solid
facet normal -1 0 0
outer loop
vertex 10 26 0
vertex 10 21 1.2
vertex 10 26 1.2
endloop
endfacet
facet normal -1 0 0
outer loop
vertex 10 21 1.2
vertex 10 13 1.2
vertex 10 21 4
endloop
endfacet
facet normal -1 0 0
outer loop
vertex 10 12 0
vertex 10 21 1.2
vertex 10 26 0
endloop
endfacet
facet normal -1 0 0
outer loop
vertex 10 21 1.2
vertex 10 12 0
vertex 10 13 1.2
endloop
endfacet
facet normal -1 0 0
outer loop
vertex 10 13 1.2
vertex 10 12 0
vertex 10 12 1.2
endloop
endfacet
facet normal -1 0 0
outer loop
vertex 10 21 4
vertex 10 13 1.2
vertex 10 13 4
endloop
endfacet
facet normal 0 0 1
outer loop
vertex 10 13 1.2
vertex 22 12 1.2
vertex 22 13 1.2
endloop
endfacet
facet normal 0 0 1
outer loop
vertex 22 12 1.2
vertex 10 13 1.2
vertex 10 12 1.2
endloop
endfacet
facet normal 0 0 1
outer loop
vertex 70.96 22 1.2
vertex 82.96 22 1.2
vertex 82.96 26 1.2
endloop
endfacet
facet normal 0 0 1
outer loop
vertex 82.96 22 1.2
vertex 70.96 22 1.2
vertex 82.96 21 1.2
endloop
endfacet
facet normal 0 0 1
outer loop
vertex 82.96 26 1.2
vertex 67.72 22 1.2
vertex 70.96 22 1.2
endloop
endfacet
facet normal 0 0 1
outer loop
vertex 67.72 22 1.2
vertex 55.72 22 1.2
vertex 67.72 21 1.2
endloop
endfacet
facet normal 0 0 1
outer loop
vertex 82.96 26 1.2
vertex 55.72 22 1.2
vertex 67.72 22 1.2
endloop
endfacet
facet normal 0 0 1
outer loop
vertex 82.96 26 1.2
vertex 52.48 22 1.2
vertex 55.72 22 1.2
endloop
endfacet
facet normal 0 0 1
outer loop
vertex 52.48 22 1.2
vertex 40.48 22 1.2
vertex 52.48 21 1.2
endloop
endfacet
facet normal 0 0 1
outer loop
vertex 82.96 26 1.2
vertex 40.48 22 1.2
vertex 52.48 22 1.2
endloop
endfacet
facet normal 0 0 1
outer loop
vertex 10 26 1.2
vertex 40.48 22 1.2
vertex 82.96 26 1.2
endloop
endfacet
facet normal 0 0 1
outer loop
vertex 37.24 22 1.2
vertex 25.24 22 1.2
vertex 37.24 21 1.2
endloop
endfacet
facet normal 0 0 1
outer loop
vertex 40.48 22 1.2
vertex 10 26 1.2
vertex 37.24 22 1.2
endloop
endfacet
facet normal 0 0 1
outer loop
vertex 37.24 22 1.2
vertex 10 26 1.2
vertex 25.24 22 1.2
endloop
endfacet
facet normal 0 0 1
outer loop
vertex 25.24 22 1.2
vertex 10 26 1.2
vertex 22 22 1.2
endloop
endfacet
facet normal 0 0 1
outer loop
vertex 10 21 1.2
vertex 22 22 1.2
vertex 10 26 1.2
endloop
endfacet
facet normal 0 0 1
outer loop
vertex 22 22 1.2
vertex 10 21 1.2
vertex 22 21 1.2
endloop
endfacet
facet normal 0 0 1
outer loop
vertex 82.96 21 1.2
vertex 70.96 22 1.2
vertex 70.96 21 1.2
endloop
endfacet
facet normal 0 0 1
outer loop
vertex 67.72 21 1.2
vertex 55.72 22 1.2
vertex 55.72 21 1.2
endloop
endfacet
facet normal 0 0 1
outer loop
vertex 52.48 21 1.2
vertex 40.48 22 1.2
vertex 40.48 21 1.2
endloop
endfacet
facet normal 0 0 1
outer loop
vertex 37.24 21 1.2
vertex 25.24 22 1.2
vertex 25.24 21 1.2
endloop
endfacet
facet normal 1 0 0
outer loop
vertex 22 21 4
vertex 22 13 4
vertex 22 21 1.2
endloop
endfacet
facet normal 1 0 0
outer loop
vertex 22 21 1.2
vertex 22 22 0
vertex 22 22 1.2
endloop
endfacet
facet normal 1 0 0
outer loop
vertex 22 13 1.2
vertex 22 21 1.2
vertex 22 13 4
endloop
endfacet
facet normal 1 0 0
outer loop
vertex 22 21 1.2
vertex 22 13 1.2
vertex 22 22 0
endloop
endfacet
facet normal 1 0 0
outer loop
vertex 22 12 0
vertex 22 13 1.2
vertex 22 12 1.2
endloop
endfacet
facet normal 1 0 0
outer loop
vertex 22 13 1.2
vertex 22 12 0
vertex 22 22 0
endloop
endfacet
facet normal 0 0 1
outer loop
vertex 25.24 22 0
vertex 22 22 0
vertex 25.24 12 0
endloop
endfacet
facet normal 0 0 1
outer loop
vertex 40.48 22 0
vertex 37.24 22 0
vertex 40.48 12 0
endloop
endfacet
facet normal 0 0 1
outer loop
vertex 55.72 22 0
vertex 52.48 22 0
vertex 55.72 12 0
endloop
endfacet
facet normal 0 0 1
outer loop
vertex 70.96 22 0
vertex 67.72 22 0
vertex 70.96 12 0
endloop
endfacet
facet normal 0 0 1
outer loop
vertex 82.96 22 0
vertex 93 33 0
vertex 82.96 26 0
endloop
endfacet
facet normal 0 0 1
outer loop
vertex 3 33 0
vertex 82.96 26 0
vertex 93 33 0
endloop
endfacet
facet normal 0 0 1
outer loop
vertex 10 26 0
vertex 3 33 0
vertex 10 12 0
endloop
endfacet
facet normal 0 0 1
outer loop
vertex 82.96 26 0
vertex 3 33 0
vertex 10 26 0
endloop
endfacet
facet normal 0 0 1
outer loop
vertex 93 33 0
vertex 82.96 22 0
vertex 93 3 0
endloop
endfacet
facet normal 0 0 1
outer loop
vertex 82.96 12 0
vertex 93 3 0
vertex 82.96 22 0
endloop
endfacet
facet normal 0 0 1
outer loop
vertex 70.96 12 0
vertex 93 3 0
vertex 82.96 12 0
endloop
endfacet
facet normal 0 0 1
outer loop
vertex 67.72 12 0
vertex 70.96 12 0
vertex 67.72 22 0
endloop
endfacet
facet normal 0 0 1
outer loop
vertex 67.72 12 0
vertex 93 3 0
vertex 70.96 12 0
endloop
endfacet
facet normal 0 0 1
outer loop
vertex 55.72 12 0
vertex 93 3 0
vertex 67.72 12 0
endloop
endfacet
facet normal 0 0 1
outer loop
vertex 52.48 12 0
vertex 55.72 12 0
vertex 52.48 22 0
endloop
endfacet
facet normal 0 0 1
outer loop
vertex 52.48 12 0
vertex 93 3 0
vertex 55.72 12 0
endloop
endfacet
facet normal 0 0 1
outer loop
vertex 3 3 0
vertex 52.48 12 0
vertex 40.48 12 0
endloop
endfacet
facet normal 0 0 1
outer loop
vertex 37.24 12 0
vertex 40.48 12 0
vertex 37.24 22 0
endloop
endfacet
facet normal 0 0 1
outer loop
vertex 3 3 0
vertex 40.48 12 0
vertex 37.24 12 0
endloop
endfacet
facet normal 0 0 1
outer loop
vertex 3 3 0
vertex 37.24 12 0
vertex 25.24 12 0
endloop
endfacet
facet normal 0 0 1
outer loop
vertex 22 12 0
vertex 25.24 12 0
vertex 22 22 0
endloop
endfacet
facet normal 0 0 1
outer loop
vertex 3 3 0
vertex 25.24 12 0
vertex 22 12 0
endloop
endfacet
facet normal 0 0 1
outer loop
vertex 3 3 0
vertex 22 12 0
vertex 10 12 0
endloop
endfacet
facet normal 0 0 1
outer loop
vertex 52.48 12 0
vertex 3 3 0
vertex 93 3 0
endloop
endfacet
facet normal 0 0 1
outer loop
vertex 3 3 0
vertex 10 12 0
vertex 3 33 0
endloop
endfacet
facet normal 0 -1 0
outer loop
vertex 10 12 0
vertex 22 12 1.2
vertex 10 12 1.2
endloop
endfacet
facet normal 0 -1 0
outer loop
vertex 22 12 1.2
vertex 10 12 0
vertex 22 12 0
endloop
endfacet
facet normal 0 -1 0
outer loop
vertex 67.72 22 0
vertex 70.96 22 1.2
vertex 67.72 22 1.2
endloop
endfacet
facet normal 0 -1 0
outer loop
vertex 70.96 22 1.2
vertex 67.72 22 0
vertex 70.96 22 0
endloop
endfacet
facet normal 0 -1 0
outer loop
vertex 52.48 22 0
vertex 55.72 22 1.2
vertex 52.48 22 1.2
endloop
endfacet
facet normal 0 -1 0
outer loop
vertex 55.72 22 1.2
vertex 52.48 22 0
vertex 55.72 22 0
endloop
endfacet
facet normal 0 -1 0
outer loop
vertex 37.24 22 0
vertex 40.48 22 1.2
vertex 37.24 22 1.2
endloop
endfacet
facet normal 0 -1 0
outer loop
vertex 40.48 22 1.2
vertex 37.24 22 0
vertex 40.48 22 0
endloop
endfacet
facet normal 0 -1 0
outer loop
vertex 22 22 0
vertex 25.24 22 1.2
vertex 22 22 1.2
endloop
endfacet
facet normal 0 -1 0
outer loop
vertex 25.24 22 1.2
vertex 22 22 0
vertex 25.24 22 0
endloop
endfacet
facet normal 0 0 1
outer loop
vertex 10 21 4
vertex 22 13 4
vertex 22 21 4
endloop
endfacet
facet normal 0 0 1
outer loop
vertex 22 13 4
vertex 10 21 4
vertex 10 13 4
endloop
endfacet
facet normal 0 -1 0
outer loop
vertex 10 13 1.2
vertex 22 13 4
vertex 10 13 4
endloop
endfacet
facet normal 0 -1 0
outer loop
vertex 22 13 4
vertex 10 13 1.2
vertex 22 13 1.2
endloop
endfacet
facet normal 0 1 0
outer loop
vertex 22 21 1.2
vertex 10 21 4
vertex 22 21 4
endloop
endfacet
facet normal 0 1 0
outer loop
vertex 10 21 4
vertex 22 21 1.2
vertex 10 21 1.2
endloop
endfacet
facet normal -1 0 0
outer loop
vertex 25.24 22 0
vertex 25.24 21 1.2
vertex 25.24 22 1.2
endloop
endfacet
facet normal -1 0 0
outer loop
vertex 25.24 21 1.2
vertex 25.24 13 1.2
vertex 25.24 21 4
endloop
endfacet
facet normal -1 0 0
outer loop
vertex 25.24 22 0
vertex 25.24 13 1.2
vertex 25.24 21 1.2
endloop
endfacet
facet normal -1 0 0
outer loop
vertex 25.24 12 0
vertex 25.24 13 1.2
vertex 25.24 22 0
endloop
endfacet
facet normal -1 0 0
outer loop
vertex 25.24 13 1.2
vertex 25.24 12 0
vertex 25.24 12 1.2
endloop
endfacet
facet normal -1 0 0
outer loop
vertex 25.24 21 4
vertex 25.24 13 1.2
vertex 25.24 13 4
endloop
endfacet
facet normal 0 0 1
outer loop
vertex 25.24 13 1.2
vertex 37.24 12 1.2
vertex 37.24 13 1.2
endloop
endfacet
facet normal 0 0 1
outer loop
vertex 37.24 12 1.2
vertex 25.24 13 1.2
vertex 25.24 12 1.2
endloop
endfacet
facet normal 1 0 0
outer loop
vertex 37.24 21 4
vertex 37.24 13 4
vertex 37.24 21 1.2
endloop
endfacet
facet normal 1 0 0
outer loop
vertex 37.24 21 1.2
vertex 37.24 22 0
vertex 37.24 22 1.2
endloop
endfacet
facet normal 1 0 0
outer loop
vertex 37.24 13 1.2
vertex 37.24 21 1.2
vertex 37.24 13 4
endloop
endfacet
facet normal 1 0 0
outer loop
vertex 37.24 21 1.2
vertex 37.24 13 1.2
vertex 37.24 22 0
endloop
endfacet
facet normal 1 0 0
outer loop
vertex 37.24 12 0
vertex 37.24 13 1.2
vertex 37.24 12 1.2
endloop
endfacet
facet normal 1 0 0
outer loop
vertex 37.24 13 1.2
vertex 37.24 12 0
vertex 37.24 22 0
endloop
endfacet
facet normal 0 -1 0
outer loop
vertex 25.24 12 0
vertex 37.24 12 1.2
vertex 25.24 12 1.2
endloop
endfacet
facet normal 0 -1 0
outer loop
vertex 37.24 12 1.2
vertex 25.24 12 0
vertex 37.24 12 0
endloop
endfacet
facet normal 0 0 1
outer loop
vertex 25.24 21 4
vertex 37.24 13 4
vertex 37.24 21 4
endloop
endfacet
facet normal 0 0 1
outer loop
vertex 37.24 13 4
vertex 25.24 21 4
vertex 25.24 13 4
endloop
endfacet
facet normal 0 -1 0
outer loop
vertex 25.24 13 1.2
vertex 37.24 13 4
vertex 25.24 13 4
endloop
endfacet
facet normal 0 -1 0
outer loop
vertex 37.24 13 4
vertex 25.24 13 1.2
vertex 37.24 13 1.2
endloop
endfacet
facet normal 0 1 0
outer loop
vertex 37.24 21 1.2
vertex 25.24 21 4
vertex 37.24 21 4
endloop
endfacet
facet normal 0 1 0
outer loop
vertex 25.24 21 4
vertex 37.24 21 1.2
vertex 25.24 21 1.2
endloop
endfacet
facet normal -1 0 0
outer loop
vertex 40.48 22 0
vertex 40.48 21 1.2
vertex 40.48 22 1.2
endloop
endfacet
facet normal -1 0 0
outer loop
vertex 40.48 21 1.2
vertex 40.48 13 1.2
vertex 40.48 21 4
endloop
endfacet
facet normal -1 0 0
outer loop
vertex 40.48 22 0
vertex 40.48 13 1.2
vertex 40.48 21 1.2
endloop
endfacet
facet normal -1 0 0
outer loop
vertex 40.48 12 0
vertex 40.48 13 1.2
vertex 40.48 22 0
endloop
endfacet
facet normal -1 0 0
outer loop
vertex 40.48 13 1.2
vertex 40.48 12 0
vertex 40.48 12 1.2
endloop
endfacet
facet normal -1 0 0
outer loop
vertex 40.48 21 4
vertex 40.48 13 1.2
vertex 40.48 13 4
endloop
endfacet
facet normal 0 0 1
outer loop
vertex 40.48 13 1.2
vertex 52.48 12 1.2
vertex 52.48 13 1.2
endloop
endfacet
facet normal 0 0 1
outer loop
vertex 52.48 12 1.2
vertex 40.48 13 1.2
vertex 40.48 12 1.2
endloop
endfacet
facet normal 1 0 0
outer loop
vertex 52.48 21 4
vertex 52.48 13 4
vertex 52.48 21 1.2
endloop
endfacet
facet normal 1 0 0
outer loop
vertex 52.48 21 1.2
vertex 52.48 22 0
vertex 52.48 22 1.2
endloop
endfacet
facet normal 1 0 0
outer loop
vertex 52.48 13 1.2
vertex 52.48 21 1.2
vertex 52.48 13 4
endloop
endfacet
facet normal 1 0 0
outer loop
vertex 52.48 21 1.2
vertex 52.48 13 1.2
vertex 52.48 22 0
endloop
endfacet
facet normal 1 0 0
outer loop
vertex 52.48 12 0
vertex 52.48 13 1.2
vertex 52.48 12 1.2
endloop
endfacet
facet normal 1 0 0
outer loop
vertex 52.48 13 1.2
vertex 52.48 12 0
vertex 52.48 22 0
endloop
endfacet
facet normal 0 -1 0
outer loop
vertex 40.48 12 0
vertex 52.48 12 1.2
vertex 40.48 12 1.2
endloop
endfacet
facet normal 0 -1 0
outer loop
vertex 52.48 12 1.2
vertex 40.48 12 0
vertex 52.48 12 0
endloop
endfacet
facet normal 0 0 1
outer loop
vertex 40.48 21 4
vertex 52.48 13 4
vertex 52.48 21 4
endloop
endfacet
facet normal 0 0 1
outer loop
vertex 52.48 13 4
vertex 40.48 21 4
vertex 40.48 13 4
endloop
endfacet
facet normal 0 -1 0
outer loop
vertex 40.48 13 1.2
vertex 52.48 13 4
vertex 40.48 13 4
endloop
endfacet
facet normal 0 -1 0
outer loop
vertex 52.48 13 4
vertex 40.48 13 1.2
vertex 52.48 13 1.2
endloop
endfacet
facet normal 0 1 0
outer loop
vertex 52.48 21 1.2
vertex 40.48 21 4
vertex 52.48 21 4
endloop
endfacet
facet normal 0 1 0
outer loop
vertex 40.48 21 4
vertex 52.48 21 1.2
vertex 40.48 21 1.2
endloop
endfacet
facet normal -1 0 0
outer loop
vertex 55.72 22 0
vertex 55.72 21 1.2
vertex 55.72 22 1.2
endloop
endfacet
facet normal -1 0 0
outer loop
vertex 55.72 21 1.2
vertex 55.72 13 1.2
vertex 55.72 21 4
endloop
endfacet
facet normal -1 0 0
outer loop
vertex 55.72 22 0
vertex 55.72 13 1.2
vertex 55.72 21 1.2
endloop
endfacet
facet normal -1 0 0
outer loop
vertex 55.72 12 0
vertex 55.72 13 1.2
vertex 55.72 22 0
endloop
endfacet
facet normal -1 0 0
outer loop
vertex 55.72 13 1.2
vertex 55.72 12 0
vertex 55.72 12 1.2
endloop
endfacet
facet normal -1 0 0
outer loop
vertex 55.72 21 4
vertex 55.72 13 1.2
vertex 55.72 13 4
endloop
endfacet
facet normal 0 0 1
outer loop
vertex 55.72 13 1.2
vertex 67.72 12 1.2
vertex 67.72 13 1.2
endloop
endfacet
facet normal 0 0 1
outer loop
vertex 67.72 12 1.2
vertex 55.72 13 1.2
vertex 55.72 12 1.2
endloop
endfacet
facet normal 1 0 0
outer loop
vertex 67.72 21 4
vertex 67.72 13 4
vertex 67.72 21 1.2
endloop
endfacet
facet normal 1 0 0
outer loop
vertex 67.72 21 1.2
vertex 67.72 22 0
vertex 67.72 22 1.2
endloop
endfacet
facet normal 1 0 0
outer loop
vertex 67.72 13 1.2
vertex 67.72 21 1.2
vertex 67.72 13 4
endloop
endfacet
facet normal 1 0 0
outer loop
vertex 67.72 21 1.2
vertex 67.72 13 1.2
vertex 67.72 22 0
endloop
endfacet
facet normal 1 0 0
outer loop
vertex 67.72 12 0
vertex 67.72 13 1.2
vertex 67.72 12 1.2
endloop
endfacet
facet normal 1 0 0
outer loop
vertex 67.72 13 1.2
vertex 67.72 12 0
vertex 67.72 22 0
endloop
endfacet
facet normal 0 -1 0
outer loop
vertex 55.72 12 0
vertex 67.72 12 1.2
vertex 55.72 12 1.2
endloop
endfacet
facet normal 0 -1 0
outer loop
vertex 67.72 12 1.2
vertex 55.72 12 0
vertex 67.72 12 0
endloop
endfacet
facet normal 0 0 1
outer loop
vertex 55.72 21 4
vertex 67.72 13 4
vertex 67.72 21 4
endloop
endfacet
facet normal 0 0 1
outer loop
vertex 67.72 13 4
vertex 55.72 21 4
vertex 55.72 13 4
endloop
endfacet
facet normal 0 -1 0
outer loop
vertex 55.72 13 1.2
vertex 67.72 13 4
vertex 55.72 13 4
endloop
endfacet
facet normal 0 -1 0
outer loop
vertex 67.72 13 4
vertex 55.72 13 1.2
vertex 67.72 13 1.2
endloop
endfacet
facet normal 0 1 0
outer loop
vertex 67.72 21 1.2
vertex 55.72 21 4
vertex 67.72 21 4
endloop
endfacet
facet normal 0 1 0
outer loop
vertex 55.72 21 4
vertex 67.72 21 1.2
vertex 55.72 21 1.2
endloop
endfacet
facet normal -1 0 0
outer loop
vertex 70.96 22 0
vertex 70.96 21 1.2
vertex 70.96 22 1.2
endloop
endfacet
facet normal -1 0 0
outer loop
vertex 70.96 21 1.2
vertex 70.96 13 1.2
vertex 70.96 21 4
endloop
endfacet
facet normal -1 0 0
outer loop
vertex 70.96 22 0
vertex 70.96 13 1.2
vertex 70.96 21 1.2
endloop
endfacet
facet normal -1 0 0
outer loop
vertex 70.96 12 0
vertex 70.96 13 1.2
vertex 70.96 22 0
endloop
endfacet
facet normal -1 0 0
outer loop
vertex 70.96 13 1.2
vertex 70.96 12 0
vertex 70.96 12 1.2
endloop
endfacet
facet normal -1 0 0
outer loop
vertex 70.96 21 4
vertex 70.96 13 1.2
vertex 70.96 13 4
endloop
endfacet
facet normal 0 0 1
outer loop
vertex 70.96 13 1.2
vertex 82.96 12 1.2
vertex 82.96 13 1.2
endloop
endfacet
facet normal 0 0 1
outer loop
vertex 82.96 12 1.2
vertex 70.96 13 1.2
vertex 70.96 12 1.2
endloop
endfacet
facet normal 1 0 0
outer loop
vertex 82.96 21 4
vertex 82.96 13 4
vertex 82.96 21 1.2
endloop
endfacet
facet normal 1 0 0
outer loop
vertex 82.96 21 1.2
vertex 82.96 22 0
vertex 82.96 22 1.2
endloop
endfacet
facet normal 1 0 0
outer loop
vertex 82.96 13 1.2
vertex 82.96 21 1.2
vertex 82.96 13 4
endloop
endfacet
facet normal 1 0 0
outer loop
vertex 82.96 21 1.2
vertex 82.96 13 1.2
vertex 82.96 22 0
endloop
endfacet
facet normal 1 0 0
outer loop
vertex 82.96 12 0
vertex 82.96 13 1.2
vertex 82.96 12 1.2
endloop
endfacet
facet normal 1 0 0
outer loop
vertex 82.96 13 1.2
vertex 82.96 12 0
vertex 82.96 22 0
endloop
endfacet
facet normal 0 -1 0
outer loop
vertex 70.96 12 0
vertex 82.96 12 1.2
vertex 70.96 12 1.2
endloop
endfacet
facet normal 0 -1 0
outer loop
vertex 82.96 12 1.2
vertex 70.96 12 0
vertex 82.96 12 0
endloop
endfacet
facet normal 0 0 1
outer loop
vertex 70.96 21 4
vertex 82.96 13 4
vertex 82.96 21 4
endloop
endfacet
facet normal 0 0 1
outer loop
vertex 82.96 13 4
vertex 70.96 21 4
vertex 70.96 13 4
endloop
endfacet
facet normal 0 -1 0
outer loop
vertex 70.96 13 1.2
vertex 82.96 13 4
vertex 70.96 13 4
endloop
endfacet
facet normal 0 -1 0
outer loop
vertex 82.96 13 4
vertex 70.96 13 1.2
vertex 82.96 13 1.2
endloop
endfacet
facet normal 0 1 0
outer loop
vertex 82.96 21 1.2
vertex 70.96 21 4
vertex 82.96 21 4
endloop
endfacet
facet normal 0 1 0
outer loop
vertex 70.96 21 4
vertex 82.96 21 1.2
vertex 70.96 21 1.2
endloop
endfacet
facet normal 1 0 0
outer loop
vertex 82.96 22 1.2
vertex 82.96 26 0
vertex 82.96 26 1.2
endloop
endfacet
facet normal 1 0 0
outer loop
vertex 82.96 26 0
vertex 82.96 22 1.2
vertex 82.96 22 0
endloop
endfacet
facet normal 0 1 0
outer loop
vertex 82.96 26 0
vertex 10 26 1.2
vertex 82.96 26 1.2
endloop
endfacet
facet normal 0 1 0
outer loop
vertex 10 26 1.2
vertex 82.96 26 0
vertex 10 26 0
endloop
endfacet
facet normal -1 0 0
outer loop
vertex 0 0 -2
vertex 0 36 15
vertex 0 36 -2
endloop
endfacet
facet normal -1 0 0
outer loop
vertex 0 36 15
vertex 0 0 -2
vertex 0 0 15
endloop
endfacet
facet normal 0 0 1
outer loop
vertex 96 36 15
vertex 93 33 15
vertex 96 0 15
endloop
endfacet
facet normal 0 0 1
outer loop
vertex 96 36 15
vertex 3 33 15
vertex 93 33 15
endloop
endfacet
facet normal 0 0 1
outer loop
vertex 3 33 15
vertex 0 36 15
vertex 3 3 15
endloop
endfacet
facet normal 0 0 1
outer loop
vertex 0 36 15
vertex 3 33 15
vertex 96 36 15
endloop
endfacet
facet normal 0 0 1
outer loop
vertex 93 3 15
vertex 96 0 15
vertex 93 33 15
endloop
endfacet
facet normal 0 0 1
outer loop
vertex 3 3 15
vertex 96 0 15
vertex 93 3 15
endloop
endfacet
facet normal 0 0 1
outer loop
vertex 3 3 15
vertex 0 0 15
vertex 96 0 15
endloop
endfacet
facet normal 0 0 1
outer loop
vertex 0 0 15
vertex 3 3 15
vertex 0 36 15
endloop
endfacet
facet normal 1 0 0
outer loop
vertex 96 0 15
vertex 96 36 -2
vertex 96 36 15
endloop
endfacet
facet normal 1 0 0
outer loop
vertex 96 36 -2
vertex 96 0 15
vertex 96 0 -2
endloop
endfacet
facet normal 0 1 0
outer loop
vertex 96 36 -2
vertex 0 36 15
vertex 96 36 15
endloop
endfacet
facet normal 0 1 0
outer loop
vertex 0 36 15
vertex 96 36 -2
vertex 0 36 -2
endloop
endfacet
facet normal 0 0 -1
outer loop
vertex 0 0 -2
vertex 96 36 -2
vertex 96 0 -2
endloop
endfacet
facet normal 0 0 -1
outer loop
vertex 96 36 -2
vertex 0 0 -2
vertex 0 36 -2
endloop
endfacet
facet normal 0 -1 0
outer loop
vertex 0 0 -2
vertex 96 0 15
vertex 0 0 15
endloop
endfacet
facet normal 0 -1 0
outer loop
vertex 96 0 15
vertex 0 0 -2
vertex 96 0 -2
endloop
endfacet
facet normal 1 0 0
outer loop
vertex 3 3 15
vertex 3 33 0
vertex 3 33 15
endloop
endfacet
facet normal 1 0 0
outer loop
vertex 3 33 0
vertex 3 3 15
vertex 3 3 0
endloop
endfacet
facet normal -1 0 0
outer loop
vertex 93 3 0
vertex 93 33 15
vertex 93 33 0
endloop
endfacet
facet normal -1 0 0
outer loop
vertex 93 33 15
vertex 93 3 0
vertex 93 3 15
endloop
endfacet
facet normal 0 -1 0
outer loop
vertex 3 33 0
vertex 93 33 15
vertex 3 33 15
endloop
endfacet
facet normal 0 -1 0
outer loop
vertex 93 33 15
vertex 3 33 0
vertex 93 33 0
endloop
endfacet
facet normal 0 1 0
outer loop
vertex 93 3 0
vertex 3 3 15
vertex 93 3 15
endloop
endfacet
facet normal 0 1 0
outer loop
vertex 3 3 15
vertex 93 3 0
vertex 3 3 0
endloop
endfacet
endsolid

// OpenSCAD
//Taken from Python key label script...
BUTTON_COUNT_X=5;
BUTTON_COUNT_Y=8;

BUTTON_WIDTH=120;
BUTTON_HEIGHT=80;
BUTTON_GAP_HORZ=32.4;
BUTTON_GAP_VERT=72.4;
//BUTTON_BORDER_HORZ=20;
//BUTTON_BORDER_VERT=20;

//Added here
BUTTON_THICKNESS=40;

BUTTON_LIP_WIDTH=0; //harder to mold
BUTTON_LIP_HEIGHT=10;
BUTTON_LIP_THICKNESS=12;

SPINE_WIDTH=5*BUTTON_WIDTH+4*BUTTON_GAP_HORZ+BUTTON_LIP_WIDTH*2;
SPINE_HEIGHT=40;
SPINE_THICKNESS=BUTTON_LIP_THICKNESS;

SPRUE_WIDTH=12;
SPRUE_LENGTH=100;
SPRUE_THICKNESS=12;
SPRUE_X_OFFSET=15;
SPRUE_Y_OFFSET=0;

MOLD_BOTTOM_THICKNESS=20;
MOLD_WALL_THICKNESS=30;
MOLD_INNER_WIDTH=900;
MOLD_INNER_HEIGHT=300;
MOLD_INNER_THICKNESS=150;

scale([0.1,0.1,0.1])
{
  union()
  {
    translate([100,120,0])
      key_row();
    mold_box();
  }
}


module mold_box()
{
  difference()
  {
    translate([0,0,-MOLD_BOTTOM_THICKNESS])
    cube([MOLD_INNER_WIDTH+
      MOLD_WALL_THICKNESS*2,
      MOLD_INNER_HEIGHT+MOLD_WALL_THICKNESS*2,
      MOLD_BOTTOM_THICKNESS+MOLD_INNER_THICKNESS]);
    translate([MOLD_WALL_THICKNESS,
      MOLD_WALL_THICKNESS,0])
    cube([MOLD_INNER_WIDTH,MOLD_INNER_HEIGHT,
      MOLD_INNER_THICKNESS+
      MOLD_BOTTOM_THICKNESS]);
  }
}


module key_row()
{

union()
{

for (i=[0:BUTTON_COUNT_X-1])
{
  translate([(BUTTON_WIDTH+BUTTON_GAP_HORZ)*i,
  0,0])
  {
    union()
    {

      //Bottom lip
      //(note lip on bottom AND top!!!)
      cube([BUTTON_LIP_WIDTH*2+BUTTON_WIDTH,
        BUTTON_LIP_HEIGHT*2+BUTTON_HEIGHT,
        BUTTON_LIP_THICKNESS]);

      //Button
      translate([BUTTON_LIP_WIDTH,
        BUTTON_LIP_HEIGHT,0])
      cube([BUTTON_WIDTH,
        BUTTON_HEIGHT,
        BUTTON_THICKNESS]);

      //Try with one sided dump mold first
      /*
      //Sprue
      translate([SPRUE_X_OFFSET,
        SPRUE_Y_OFFSET,0])
      rotate([0,0,150])
      cube([SPRUE_WIDTH,SPRUE_LENGTH,
        SPRUE_THICKNESS]);
      */
    }
  }
}

//Spine
translate([0,BUTTON_LIP_HEIGHT*2+BUTTON_HEIGHT,
  0])
cube([SPINE_WIDTH, SPINE_HEIGHT,
  SPINE_THICKNESS]);

}

}
